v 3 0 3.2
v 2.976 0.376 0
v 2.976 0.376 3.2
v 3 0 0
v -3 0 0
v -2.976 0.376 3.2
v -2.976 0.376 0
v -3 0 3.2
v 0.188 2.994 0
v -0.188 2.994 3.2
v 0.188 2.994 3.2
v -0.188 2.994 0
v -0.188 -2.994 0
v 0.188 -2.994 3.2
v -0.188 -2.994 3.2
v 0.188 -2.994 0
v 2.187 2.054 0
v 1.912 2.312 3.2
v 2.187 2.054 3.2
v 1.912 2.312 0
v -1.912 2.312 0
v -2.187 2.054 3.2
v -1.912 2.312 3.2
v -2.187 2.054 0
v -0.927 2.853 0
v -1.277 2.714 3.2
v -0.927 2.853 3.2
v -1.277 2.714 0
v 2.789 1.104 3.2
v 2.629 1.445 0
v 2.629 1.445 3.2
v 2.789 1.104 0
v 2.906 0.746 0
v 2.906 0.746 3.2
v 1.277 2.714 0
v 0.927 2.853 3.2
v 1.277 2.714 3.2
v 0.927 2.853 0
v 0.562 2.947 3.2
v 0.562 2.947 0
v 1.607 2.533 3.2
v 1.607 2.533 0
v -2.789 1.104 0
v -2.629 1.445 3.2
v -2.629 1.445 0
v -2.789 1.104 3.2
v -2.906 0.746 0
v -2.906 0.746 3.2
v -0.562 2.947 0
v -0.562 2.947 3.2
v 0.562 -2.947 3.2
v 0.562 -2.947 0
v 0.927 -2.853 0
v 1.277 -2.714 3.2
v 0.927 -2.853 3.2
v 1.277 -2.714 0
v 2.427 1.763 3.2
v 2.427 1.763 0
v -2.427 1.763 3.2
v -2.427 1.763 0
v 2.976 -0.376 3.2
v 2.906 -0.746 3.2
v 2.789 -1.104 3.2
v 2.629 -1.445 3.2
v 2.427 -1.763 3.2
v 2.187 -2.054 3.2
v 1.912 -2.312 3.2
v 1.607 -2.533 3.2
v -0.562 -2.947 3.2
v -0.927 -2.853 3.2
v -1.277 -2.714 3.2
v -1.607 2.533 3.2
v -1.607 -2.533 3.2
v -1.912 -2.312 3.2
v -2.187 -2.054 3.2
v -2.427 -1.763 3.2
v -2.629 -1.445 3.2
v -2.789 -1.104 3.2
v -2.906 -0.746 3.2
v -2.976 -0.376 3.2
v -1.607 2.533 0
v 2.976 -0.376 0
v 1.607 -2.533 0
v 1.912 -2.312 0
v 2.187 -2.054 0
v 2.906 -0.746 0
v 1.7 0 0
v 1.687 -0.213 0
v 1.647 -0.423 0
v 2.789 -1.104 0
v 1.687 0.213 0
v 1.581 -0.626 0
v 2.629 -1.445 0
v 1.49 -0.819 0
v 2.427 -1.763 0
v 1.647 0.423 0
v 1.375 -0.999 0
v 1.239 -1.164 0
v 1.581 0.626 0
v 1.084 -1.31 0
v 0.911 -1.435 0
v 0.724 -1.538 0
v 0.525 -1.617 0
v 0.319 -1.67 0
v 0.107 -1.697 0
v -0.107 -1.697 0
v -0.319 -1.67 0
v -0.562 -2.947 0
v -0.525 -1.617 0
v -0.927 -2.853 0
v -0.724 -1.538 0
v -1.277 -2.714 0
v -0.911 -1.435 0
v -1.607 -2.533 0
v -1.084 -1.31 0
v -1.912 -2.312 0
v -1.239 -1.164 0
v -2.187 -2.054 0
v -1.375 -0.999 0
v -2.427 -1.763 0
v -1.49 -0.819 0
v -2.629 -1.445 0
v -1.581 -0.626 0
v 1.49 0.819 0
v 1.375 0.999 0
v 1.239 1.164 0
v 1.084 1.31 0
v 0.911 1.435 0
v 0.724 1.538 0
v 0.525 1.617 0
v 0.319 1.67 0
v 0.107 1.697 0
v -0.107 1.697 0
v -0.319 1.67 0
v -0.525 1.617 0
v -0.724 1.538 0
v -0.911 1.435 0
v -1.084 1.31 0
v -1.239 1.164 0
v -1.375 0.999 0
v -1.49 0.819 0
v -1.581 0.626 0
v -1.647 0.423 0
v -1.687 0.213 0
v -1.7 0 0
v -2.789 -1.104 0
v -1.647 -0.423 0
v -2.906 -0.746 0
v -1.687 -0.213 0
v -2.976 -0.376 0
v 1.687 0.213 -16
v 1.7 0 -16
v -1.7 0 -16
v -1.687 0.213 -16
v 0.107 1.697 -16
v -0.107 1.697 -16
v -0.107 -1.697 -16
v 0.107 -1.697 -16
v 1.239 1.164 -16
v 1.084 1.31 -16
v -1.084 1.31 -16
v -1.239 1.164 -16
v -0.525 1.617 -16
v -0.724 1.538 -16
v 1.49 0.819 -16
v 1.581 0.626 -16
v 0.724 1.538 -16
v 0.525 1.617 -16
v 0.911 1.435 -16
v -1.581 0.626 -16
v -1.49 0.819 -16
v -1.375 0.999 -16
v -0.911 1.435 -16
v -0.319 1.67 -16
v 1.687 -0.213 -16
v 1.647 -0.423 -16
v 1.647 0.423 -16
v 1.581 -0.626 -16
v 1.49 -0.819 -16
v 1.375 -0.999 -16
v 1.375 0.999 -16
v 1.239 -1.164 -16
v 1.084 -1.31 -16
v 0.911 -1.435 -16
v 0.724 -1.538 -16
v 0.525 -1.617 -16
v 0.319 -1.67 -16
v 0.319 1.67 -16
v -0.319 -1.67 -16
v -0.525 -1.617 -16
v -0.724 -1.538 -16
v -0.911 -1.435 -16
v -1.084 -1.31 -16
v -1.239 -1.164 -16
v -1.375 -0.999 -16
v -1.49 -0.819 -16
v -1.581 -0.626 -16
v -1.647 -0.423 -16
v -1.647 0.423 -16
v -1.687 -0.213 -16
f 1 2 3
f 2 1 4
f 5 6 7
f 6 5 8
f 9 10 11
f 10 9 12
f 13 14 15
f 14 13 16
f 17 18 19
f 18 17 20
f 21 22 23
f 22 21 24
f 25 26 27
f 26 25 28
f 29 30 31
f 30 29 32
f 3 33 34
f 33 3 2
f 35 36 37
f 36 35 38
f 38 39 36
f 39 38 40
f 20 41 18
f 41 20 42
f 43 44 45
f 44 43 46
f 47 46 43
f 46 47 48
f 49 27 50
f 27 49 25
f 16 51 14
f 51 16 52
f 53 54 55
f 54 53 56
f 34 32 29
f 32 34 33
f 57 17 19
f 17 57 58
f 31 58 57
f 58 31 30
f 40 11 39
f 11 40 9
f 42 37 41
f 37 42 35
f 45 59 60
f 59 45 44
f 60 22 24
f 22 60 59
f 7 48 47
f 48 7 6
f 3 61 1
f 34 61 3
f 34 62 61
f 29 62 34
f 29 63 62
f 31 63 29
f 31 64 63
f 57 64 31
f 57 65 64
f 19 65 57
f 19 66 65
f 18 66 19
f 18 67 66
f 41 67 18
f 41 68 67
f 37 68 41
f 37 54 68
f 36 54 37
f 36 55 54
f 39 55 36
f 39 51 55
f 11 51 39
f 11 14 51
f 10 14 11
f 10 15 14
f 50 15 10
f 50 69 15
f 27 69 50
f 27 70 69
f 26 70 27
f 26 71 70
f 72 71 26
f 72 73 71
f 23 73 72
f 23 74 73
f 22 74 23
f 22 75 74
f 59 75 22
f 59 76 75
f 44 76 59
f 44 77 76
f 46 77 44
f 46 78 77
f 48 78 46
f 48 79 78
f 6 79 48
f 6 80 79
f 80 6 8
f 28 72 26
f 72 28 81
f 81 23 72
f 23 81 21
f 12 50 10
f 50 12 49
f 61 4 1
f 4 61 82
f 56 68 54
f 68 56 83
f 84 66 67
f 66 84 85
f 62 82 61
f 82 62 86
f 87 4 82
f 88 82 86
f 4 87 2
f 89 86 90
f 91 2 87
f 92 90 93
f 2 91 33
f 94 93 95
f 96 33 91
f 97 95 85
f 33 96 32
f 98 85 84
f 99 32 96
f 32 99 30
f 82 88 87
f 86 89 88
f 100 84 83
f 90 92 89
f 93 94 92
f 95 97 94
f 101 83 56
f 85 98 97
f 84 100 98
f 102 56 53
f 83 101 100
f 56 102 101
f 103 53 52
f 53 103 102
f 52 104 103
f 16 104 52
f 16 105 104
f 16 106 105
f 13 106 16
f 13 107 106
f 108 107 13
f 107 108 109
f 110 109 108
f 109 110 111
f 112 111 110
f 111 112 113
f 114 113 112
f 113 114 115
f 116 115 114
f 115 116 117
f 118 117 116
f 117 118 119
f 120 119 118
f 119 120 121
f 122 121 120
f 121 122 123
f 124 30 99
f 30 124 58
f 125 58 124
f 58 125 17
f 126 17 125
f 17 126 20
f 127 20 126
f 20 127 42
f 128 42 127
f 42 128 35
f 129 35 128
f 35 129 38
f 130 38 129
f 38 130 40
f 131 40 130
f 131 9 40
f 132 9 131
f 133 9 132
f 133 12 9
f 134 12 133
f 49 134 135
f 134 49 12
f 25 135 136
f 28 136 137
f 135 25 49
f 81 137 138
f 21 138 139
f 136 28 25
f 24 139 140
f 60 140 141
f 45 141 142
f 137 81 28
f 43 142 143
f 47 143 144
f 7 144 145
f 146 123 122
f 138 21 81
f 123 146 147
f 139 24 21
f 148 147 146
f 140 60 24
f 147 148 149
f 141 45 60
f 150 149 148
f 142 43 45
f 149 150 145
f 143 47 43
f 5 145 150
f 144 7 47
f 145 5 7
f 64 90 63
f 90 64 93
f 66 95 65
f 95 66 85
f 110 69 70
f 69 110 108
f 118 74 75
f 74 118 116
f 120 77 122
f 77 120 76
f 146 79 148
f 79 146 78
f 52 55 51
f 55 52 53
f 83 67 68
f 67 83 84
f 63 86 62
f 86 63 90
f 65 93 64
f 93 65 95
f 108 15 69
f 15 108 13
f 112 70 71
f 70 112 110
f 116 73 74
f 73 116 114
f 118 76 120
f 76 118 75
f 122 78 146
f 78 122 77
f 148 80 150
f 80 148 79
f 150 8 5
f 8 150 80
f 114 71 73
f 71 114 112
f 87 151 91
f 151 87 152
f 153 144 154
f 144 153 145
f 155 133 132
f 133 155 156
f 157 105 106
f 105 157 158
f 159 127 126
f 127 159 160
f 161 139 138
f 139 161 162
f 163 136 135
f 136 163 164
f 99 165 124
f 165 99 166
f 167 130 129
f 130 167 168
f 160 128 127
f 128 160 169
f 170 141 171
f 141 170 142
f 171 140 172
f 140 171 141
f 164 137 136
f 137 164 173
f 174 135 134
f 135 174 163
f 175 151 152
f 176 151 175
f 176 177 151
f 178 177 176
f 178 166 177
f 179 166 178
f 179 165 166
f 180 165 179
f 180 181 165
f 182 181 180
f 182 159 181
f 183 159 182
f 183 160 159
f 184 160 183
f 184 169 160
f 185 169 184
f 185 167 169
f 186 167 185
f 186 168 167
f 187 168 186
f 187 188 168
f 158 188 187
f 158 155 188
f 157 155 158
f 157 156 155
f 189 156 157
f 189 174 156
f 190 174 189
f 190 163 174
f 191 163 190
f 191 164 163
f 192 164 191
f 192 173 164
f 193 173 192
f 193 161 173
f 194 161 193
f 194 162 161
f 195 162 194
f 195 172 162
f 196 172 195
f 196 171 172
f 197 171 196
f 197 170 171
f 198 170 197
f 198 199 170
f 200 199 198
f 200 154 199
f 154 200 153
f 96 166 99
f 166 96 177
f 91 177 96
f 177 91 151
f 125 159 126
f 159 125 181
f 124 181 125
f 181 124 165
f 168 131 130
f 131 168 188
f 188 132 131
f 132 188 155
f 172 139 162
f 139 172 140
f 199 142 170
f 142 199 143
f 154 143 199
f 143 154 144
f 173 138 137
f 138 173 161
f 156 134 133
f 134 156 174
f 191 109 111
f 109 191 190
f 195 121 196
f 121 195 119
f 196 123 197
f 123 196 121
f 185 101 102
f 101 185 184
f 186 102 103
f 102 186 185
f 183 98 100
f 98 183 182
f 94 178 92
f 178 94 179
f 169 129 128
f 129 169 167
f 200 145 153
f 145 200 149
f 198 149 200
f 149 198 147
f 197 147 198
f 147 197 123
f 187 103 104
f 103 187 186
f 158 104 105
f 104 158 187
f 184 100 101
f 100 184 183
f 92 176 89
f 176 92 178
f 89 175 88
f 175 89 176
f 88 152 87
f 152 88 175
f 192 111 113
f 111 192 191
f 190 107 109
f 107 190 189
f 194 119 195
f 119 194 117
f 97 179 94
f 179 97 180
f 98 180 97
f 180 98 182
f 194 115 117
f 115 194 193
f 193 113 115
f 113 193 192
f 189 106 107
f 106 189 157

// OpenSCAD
$fn = 50;


difference() {
	union() {
		translate(v = [0, 0, 0]) {
			rotate(a = [0, 0, 0]) {
				cylinder(h = 3.2000000000, r = 3.0000000000);
			}
		}
		translate(v = [0, 0, -16]) {
			rotate(a = [0, 0, 0]) {
				cylinder(h = 16, r = 1.7000000000);
			}
		}
	}
	union();
}
